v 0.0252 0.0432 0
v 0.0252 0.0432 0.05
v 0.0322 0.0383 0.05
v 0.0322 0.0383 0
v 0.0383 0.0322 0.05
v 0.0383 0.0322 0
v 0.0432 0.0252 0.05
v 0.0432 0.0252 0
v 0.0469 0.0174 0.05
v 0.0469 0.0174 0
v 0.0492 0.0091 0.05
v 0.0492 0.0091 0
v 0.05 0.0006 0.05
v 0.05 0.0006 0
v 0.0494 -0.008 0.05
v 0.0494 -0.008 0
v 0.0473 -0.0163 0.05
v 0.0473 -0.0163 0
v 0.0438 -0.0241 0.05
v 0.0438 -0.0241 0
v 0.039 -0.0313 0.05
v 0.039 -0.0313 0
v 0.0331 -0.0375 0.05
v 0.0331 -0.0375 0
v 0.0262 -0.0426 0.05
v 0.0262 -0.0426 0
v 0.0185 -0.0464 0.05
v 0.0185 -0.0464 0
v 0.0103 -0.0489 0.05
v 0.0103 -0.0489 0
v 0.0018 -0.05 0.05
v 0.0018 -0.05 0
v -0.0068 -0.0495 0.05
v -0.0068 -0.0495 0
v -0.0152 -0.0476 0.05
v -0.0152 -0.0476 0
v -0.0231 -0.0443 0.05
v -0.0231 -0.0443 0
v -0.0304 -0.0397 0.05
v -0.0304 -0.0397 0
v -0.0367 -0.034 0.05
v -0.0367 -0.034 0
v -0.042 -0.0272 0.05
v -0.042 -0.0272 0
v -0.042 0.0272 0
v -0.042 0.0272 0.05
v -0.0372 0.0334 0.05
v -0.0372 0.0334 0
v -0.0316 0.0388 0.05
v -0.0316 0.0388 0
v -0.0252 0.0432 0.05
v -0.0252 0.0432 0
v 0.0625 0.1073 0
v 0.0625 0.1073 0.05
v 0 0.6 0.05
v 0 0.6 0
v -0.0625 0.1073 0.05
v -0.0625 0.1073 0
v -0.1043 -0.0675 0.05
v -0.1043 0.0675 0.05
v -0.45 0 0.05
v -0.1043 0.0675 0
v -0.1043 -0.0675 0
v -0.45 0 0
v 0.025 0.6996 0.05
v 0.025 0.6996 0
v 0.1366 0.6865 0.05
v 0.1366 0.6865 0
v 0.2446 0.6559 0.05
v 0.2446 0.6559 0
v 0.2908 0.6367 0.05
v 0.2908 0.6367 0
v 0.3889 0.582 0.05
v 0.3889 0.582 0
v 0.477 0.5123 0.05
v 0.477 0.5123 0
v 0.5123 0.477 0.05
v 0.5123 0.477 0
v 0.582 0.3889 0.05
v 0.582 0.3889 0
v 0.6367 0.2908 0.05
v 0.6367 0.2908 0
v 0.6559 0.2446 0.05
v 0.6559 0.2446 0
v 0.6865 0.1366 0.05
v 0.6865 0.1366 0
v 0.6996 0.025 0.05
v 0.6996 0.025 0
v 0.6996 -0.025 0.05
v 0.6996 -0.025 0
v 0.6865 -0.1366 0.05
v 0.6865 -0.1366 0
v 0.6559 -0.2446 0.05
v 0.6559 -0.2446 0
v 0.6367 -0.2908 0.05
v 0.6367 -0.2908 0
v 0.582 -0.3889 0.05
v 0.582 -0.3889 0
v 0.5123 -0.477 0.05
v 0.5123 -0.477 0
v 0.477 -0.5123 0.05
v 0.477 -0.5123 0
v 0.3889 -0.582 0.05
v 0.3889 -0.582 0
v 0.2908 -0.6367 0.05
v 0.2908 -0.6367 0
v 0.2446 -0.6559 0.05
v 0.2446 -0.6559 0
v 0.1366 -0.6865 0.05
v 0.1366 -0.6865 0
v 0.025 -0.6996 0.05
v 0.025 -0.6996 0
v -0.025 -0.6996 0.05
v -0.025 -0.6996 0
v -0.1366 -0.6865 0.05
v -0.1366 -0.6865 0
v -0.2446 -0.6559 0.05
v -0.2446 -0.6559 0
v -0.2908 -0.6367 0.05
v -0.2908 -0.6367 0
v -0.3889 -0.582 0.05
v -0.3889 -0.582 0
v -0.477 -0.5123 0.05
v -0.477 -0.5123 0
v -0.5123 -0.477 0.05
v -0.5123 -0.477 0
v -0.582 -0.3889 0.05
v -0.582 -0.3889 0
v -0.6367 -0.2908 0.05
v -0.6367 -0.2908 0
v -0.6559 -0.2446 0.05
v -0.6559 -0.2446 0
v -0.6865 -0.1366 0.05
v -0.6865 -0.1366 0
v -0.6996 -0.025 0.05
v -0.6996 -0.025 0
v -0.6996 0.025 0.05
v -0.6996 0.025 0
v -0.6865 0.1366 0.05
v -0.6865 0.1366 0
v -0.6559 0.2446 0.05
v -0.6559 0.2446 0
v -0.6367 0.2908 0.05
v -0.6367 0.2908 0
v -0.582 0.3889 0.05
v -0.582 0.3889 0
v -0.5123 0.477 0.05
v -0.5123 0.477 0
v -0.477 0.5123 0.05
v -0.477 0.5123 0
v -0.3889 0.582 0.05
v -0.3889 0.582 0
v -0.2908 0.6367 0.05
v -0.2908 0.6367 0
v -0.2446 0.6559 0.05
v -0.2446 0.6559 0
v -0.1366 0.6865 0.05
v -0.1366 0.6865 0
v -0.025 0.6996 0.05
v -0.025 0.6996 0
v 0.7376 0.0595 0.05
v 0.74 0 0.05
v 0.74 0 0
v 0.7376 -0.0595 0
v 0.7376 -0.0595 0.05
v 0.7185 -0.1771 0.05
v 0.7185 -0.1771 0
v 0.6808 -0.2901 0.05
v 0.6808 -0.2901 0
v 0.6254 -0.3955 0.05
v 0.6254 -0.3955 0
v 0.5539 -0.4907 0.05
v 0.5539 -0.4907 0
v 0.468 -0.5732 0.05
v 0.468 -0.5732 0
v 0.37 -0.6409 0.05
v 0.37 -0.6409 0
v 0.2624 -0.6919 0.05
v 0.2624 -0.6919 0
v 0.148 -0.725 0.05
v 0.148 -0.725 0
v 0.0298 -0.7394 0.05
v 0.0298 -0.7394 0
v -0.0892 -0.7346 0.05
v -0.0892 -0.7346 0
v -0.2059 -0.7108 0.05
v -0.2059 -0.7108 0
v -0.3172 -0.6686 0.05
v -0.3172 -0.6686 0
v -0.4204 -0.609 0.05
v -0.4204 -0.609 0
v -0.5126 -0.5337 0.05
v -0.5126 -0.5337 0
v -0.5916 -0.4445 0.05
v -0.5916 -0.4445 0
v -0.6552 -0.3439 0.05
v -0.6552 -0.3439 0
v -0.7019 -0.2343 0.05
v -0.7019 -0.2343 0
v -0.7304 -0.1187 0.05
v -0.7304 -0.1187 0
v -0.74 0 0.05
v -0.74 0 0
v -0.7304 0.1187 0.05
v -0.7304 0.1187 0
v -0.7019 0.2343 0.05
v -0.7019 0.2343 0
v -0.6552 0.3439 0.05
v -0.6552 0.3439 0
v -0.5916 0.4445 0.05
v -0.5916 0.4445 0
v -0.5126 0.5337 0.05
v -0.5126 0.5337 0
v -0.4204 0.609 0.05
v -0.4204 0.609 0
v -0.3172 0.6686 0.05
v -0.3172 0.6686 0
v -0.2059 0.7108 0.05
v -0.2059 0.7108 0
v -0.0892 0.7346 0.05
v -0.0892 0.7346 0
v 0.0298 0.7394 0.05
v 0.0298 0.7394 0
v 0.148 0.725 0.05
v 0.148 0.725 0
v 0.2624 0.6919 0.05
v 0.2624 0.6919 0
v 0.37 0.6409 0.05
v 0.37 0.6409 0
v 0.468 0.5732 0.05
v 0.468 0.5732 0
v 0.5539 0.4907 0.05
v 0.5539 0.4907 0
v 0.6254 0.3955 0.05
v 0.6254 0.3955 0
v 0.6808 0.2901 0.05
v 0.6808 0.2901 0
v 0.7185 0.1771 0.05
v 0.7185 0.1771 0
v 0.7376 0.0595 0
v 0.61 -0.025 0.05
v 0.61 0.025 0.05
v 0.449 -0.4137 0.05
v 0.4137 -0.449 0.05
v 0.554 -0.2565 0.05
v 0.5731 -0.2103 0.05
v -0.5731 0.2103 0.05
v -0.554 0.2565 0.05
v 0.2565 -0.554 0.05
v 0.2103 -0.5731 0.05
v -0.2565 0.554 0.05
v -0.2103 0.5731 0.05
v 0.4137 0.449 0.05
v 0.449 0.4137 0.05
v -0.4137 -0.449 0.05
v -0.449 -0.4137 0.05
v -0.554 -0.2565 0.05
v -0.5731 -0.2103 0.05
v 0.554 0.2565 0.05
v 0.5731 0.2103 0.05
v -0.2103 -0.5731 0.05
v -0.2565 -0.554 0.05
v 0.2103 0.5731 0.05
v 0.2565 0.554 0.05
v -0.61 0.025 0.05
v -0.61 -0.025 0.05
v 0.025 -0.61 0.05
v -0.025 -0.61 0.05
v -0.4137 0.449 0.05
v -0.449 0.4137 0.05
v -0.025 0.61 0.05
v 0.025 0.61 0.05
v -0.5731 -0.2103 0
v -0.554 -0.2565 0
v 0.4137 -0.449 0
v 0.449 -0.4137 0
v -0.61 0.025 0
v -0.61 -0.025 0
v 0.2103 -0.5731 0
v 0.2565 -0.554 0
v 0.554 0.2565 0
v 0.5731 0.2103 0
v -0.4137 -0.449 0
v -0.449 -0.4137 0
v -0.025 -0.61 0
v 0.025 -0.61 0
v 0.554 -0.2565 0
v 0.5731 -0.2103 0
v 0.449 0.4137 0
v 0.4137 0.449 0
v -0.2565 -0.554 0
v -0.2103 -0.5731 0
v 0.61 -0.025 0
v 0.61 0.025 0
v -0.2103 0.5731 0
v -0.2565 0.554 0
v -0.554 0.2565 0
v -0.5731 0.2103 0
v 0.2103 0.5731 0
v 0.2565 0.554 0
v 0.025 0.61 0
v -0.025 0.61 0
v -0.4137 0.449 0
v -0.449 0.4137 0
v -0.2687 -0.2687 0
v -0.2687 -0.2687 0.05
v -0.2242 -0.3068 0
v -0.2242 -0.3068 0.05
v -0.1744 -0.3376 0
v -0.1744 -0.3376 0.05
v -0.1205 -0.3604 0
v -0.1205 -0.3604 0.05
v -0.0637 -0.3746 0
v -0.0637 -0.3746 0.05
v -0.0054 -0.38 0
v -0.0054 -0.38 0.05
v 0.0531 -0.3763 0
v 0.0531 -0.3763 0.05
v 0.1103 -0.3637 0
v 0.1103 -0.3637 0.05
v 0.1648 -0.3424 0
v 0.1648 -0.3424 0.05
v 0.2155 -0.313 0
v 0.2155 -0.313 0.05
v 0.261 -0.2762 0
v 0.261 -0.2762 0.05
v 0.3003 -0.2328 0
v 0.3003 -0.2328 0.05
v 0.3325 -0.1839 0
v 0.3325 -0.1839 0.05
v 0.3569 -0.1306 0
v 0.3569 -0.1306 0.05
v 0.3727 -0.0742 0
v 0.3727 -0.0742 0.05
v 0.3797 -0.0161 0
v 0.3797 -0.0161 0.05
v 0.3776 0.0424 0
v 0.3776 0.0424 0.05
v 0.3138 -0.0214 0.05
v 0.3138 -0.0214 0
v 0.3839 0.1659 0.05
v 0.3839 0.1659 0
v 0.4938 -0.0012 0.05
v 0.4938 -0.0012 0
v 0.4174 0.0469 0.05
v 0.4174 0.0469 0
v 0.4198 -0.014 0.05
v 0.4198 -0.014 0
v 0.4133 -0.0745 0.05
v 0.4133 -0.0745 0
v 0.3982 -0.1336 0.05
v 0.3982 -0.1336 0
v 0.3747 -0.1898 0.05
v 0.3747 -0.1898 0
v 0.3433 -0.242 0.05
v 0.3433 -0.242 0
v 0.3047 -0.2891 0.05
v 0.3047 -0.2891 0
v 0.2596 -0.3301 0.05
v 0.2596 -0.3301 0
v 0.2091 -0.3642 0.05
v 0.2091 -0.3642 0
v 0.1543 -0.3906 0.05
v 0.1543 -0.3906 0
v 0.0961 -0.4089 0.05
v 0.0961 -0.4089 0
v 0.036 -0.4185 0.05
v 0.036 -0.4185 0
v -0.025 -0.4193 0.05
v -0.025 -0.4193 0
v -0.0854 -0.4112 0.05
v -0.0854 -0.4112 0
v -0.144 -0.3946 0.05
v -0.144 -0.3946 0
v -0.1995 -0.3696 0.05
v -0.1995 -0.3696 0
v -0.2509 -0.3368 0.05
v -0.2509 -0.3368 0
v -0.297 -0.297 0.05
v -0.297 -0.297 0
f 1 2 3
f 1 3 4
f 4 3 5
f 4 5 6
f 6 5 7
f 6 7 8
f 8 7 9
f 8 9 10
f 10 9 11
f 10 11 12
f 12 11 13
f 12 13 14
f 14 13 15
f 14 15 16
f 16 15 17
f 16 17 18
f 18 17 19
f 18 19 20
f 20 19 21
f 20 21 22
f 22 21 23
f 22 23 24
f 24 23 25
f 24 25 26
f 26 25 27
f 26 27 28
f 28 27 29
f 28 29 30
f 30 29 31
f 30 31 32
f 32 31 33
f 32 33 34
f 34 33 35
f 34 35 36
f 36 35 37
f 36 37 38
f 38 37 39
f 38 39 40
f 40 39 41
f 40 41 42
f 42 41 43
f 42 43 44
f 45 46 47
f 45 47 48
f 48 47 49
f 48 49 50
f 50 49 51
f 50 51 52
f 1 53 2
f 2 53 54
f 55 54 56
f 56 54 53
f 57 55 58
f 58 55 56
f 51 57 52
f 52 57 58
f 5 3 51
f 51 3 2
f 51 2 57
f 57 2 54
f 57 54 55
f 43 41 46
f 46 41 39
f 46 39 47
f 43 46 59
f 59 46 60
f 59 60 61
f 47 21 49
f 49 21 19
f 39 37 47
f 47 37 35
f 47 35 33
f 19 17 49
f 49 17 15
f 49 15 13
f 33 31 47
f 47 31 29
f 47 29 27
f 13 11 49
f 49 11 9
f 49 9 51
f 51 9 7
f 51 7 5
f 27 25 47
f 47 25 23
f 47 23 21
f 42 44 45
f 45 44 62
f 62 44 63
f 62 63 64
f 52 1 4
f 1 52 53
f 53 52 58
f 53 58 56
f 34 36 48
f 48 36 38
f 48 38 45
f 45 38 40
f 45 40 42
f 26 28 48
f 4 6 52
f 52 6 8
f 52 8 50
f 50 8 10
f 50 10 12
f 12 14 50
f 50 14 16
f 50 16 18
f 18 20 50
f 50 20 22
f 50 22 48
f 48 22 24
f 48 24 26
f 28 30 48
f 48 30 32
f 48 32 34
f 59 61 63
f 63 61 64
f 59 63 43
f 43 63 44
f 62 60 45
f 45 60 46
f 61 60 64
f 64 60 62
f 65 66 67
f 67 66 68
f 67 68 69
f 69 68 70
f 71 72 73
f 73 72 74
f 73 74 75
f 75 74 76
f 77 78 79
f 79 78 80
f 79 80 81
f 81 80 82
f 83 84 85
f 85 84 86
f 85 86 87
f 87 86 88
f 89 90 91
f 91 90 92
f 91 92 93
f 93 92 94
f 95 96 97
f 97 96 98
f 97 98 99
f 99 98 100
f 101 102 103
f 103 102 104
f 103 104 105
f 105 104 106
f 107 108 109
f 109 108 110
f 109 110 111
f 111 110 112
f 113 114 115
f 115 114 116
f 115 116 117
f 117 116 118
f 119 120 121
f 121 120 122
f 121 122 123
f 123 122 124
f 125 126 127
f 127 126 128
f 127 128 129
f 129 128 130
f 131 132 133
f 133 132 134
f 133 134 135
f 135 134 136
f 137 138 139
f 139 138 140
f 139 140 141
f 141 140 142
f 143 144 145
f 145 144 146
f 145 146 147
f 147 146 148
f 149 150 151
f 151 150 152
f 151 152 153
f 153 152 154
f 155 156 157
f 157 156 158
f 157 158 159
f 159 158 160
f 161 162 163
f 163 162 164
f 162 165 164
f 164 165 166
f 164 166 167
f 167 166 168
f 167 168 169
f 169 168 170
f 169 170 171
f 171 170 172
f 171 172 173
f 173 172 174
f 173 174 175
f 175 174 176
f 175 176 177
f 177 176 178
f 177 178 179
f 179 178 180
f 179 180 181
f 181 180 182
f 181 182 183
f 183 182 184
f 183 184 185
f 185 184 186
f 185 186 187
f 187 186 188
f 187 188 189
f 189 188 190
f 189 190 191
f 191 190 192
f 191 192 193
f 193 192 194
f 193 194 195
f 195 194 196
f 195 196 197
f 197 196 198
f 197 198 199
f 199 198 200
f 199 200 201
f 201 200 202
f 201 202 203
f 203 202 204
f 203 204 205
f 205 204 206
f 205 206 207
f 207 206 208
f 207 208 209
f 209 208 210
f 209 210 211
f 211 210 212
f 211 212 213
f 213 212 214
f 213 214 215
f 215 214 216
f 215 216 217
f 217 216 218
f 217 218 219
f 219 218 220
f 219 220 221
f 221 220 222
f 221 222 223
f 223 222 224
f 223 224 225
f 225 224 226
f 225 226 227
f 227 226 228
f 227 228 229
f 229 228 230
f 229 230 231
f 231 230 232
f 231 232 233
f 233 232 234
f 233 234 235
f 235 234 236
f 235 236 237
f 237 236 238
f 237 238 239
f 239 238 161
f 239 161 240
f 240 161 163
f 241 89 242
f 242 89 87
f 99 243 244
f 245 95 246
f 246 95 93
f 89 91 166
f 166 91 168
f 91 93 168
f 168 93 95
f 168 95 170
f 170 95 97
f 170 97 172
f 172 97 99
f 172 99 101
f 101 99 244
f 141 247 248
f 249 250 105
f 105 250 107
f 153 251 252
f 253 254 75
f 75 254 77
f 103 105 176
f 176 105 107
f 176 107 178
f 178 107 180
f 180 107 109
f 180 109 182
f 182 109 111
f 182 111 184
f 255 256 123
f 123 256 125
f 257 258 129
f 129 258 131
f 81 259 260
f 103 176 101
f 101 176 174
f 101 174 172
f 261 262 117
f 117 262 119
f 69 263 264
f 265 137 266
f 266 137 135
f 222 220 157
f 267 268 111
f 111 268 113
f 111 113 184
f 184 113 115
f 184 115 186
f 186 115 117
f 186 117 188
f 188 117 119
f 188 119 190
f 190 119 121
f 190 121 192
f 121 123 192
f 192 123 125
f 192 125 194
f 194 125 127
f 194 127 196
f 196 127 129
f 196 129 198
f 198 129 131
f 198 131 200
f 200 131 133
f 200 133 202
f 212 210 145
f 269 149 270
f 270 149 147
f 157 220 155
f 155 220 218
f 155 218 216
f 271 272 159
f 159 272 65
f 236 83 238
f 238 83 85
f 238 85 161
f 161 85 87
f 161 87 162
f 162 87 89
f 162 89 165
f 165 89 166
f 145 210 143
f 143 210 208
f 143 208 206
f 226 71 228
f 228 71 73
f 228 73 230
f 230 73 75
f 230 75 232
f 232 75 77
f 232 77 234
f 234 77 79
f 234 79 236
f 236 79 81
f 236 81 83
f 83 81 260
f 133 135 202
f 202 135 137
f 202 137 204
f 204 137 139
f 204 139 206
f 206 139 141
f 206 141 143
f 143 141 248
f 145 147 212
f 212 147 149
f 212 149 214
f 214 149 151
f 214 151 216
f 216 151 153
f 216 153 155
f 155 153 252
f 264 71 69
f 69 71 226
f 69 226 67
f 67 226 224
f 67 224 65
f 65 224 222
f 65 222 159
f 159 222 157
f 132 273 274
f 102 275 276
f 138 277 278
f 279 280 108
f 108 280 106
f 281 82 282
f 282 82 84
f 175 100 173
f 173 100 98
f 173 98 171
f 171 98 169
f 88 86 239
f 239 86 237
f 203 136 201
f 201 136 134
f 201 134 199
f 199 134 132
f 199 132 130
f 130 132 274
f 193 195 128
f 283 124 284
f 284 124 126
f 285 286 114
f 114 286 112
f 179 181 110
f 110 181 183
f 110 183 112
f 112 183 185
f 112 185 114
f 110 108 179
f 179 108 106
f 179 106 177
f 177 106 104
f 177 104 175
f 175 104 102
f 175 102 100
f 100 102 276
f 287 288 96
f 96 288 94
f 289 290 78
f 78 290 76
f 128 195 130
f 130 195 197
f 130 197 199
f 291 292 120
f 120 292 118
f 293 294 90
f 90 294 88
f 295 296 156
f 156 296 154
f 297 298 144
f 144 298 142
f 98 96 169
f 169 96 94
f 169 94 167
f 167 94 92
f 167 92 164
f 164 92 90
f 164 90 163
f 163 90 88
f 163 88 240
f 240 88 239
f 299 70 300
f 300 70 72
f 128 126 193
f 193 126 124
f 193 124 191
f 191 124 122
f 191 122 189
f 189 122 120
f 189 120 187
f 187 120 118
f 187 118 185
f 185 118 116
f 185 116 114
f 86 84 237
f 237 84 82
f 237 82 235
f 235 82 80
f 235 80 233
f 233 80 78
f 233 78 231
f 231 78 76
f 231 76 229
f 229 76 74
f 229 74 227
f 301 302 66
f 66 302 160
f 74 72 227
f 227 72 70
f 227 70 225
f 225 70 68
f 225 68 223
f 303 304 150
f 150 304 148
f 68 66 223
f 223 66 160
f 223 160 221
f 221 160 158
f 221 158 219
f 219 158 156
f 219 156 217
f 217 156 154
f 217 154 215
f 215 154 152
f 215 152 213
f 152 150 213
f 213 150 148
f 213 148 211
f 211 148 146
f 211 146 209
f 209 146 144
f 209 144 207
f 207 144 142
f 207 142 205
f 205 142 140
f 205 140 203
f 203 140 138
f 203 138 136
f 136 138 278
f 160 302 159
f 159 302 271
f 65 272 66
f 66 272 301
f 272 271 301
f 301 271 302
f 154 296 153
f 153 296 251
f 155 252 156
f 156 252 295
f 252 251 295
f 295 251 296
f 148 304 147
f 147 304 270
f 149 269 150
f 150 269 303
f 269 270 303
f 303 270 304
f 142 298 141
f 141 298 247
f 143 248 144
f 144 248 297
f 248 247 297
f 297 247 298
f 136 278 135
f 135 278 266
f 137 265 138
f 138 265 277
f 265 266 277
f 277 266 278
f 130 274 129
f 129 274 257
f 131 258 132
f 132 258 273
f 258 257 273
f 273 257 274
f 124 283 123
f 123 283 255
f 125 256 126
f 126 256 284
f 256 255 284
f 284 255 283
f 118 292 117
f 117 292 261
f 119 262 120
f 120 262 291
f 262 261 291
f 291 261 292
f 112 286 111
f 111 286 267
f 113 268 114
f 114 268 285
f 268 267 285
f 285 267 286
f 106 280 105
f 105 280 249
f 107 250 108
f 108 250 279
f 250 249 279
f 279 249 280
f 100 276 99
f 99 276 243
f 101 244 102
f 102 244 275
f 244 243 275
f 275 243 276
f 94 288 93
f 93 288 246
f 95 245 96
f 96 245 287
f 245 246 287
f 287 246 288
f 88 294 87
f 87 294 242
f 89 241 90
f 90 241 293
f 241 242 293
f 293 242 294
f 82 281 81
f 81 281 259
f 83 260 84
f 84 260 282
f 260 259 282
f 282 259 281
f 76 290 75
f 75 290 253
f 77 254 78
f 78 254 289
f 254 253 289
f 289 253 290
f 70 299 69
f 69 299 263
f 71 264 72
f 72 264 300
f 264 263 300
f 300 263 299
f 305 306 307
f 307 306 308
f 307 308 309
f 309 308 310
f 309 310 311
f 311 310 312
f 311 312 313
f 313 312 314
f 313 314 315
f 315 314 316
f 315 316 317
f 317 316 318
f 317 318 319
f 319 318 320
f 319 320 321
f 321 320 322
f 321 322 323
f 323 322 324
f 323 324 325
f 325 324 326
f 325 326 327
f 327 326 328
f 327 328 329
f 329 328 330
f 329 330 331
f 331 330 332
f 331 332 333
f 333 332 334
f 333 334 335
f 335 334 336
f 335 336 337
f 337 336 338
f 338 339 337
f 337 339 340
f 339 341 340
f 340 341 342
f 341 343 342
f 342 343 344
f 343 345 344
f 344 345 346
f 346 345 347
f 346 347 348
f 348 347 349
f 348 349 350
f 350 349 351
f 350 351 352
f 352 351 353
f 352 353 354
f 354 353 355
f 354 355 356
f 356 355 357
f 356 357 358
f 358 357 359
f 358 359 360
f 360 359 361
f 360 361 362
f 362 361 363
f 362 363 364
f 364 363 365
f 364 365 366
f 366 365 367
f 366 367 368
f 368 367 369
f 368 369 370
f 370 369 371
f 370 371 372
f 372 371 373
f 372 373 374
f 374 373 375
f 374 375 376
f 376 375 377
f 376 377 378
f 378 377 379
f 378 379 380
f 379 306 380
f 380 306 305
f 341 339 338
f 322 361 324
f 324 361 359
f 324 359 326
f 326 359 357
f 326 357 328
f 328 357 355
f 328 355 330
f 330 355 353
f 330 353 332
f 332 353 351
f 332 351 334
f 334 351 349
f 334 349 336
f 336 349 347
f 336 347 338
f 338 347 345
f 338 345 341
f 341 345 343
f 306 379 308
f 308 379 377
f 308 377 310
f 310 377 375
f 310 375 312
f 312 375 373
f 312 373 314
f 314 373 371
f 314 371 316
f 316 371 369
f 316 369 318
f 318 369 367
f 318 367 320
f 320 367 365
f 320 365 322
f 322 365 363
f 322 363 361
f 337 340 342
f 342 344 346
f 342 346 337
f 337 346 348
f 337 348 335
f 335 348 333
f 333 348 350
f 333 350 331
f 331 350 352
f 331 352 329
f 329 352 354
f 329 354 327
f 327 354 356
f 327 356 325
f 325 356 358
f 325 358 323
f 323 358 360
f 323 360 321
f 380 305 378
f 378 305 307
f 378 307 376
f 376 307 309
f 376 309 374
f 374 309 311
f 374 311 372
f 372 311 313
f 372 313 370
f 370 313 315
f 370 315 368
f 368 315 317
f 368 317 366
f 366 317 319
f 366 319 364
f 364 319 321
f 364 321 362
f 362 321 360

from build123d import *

# Parameters (mm, degrees)
BOSS_EXTRUDE1_DEPTH   = 0.05
BOSS_EXTRUDE1_2_DEPTH = 0.05
SKETCH1_R             = 0.74
SKETCH1_R_2           = 0.7
BOSS_EXTRUDE1_3_DEPTH = 0.05
SKETCH2_R             = 0.05
BOSS_EXTRUDE2_DEPTH   = 0.05
SKETCH3_W             = 0.05
SKETCH3_H             = 0.09
BOSS_EXTRUDE3_DEPTH   = 0.05
CIRPATTERN1_COUNT     = 16
BOSS_EXTRUDE4_DEPTH   = 0.05


with BuildPart() as part:
    # Sketch1 → Boss-Extrude1 (new body)
    with BuildSketch(Plane.XY):
        Polygon((0, 0), (0.0625, 0.107348242), (0, 0.6), (-0.0625, 0.107348242), align=None)
    extrude(amount=BOSS_EXTRUDE1_DEPTH)



with BuildPart() as body_2:
    # Sketch1 → Boss-Extrude1 2 (new body)
    with BuildSketch(Plane.XY):
        Polygon((-0.45, 0), (-0.104276771, -0.0675), (0, 0), (-0.104276771, 0.0675), align=None)
    extrude(amount=BOSS_EXTRUDE1_2_DEPTH)


with BuildPart() as body_3:
    # Sketch1 → Boss-Extrude1 3 (new body)
    with BuildSketch(Plane.XY):
        Circle(SKETCH1_R)
        Circle(SKETCH1_R_2, mode=Mode.SUBTRACT)
    extrude(amount=BOSS_EXTRUDE1_3_DEPTH)

    # Sketch3 → Boss-Extrude3 (add)
    with BuildSketch(Plane.XY.offset(0.05)):
        with Locations((0, 0.655)):
            Rectangle(SKETCH3_W, SKETCH3_H)
    boss_extrude3 = extrude(amount=-BOSS_EXTRUDE3_DEPTH)

    # CirPattern1: Boss-Extrude3 ×16 about axis
    cirpattern1_axis = Axis((0, 0, 0), (0, 0, 1))
    for i in range(1, CIRPATTERN1_COUNT):
        add(boss_extrude3.rotate(cirpattern1_axis, i * 360 / CIRPATTERN1_COUNT))


with BuildPart() as part_1:
    add(part.part)

    add(body_2.part)  # Boss-Extrude2 merges body 2
    # Sketch2 → Boss-Extrude2 (add)
    with BuildSketch(Plane.XY.offset(0.05)):
        Circle(SKETCH2_R)
    extrude(amount=-BOSS_EXTRUDE2_DEPTH)


with BuildPart() as body_3_2:
    # Sketch4 → Boss-Extrude4 (new body)
    with BuildSketch(Plane.XY.offset(0.05)):
        with BuildLine():
            Line((-0.268700577, -0.268700577), (-0.296984848, -0.296984848))
            ThreePointArc((-0.296984848, -0.296984848), (0.182179719, -0.378431698), (0.4173719, 0.046911587))
            Line((0.4173719, 0.046911587), (0.493786157, -0.001160659))
            Line((0.493786157, -0.001160659), (0.383868948, 0.165926764))
            Line((0.383868948, 0.165926764), (0.313786157, -0.021392222))
            Line((0.313786157, -0.021392222), (0.377622195, 0.042443816))
            ThreePointArc((0.377622195, 0.042443816), (0.16482927, -0.342390584), (-0.268700577, -0.268700577))
        make_face()
    extrude(amount=-BOSS_EXTRUDE4_DEPTH)


solid = Compound([body_3.part, part_1.part, body_3_2.part])
